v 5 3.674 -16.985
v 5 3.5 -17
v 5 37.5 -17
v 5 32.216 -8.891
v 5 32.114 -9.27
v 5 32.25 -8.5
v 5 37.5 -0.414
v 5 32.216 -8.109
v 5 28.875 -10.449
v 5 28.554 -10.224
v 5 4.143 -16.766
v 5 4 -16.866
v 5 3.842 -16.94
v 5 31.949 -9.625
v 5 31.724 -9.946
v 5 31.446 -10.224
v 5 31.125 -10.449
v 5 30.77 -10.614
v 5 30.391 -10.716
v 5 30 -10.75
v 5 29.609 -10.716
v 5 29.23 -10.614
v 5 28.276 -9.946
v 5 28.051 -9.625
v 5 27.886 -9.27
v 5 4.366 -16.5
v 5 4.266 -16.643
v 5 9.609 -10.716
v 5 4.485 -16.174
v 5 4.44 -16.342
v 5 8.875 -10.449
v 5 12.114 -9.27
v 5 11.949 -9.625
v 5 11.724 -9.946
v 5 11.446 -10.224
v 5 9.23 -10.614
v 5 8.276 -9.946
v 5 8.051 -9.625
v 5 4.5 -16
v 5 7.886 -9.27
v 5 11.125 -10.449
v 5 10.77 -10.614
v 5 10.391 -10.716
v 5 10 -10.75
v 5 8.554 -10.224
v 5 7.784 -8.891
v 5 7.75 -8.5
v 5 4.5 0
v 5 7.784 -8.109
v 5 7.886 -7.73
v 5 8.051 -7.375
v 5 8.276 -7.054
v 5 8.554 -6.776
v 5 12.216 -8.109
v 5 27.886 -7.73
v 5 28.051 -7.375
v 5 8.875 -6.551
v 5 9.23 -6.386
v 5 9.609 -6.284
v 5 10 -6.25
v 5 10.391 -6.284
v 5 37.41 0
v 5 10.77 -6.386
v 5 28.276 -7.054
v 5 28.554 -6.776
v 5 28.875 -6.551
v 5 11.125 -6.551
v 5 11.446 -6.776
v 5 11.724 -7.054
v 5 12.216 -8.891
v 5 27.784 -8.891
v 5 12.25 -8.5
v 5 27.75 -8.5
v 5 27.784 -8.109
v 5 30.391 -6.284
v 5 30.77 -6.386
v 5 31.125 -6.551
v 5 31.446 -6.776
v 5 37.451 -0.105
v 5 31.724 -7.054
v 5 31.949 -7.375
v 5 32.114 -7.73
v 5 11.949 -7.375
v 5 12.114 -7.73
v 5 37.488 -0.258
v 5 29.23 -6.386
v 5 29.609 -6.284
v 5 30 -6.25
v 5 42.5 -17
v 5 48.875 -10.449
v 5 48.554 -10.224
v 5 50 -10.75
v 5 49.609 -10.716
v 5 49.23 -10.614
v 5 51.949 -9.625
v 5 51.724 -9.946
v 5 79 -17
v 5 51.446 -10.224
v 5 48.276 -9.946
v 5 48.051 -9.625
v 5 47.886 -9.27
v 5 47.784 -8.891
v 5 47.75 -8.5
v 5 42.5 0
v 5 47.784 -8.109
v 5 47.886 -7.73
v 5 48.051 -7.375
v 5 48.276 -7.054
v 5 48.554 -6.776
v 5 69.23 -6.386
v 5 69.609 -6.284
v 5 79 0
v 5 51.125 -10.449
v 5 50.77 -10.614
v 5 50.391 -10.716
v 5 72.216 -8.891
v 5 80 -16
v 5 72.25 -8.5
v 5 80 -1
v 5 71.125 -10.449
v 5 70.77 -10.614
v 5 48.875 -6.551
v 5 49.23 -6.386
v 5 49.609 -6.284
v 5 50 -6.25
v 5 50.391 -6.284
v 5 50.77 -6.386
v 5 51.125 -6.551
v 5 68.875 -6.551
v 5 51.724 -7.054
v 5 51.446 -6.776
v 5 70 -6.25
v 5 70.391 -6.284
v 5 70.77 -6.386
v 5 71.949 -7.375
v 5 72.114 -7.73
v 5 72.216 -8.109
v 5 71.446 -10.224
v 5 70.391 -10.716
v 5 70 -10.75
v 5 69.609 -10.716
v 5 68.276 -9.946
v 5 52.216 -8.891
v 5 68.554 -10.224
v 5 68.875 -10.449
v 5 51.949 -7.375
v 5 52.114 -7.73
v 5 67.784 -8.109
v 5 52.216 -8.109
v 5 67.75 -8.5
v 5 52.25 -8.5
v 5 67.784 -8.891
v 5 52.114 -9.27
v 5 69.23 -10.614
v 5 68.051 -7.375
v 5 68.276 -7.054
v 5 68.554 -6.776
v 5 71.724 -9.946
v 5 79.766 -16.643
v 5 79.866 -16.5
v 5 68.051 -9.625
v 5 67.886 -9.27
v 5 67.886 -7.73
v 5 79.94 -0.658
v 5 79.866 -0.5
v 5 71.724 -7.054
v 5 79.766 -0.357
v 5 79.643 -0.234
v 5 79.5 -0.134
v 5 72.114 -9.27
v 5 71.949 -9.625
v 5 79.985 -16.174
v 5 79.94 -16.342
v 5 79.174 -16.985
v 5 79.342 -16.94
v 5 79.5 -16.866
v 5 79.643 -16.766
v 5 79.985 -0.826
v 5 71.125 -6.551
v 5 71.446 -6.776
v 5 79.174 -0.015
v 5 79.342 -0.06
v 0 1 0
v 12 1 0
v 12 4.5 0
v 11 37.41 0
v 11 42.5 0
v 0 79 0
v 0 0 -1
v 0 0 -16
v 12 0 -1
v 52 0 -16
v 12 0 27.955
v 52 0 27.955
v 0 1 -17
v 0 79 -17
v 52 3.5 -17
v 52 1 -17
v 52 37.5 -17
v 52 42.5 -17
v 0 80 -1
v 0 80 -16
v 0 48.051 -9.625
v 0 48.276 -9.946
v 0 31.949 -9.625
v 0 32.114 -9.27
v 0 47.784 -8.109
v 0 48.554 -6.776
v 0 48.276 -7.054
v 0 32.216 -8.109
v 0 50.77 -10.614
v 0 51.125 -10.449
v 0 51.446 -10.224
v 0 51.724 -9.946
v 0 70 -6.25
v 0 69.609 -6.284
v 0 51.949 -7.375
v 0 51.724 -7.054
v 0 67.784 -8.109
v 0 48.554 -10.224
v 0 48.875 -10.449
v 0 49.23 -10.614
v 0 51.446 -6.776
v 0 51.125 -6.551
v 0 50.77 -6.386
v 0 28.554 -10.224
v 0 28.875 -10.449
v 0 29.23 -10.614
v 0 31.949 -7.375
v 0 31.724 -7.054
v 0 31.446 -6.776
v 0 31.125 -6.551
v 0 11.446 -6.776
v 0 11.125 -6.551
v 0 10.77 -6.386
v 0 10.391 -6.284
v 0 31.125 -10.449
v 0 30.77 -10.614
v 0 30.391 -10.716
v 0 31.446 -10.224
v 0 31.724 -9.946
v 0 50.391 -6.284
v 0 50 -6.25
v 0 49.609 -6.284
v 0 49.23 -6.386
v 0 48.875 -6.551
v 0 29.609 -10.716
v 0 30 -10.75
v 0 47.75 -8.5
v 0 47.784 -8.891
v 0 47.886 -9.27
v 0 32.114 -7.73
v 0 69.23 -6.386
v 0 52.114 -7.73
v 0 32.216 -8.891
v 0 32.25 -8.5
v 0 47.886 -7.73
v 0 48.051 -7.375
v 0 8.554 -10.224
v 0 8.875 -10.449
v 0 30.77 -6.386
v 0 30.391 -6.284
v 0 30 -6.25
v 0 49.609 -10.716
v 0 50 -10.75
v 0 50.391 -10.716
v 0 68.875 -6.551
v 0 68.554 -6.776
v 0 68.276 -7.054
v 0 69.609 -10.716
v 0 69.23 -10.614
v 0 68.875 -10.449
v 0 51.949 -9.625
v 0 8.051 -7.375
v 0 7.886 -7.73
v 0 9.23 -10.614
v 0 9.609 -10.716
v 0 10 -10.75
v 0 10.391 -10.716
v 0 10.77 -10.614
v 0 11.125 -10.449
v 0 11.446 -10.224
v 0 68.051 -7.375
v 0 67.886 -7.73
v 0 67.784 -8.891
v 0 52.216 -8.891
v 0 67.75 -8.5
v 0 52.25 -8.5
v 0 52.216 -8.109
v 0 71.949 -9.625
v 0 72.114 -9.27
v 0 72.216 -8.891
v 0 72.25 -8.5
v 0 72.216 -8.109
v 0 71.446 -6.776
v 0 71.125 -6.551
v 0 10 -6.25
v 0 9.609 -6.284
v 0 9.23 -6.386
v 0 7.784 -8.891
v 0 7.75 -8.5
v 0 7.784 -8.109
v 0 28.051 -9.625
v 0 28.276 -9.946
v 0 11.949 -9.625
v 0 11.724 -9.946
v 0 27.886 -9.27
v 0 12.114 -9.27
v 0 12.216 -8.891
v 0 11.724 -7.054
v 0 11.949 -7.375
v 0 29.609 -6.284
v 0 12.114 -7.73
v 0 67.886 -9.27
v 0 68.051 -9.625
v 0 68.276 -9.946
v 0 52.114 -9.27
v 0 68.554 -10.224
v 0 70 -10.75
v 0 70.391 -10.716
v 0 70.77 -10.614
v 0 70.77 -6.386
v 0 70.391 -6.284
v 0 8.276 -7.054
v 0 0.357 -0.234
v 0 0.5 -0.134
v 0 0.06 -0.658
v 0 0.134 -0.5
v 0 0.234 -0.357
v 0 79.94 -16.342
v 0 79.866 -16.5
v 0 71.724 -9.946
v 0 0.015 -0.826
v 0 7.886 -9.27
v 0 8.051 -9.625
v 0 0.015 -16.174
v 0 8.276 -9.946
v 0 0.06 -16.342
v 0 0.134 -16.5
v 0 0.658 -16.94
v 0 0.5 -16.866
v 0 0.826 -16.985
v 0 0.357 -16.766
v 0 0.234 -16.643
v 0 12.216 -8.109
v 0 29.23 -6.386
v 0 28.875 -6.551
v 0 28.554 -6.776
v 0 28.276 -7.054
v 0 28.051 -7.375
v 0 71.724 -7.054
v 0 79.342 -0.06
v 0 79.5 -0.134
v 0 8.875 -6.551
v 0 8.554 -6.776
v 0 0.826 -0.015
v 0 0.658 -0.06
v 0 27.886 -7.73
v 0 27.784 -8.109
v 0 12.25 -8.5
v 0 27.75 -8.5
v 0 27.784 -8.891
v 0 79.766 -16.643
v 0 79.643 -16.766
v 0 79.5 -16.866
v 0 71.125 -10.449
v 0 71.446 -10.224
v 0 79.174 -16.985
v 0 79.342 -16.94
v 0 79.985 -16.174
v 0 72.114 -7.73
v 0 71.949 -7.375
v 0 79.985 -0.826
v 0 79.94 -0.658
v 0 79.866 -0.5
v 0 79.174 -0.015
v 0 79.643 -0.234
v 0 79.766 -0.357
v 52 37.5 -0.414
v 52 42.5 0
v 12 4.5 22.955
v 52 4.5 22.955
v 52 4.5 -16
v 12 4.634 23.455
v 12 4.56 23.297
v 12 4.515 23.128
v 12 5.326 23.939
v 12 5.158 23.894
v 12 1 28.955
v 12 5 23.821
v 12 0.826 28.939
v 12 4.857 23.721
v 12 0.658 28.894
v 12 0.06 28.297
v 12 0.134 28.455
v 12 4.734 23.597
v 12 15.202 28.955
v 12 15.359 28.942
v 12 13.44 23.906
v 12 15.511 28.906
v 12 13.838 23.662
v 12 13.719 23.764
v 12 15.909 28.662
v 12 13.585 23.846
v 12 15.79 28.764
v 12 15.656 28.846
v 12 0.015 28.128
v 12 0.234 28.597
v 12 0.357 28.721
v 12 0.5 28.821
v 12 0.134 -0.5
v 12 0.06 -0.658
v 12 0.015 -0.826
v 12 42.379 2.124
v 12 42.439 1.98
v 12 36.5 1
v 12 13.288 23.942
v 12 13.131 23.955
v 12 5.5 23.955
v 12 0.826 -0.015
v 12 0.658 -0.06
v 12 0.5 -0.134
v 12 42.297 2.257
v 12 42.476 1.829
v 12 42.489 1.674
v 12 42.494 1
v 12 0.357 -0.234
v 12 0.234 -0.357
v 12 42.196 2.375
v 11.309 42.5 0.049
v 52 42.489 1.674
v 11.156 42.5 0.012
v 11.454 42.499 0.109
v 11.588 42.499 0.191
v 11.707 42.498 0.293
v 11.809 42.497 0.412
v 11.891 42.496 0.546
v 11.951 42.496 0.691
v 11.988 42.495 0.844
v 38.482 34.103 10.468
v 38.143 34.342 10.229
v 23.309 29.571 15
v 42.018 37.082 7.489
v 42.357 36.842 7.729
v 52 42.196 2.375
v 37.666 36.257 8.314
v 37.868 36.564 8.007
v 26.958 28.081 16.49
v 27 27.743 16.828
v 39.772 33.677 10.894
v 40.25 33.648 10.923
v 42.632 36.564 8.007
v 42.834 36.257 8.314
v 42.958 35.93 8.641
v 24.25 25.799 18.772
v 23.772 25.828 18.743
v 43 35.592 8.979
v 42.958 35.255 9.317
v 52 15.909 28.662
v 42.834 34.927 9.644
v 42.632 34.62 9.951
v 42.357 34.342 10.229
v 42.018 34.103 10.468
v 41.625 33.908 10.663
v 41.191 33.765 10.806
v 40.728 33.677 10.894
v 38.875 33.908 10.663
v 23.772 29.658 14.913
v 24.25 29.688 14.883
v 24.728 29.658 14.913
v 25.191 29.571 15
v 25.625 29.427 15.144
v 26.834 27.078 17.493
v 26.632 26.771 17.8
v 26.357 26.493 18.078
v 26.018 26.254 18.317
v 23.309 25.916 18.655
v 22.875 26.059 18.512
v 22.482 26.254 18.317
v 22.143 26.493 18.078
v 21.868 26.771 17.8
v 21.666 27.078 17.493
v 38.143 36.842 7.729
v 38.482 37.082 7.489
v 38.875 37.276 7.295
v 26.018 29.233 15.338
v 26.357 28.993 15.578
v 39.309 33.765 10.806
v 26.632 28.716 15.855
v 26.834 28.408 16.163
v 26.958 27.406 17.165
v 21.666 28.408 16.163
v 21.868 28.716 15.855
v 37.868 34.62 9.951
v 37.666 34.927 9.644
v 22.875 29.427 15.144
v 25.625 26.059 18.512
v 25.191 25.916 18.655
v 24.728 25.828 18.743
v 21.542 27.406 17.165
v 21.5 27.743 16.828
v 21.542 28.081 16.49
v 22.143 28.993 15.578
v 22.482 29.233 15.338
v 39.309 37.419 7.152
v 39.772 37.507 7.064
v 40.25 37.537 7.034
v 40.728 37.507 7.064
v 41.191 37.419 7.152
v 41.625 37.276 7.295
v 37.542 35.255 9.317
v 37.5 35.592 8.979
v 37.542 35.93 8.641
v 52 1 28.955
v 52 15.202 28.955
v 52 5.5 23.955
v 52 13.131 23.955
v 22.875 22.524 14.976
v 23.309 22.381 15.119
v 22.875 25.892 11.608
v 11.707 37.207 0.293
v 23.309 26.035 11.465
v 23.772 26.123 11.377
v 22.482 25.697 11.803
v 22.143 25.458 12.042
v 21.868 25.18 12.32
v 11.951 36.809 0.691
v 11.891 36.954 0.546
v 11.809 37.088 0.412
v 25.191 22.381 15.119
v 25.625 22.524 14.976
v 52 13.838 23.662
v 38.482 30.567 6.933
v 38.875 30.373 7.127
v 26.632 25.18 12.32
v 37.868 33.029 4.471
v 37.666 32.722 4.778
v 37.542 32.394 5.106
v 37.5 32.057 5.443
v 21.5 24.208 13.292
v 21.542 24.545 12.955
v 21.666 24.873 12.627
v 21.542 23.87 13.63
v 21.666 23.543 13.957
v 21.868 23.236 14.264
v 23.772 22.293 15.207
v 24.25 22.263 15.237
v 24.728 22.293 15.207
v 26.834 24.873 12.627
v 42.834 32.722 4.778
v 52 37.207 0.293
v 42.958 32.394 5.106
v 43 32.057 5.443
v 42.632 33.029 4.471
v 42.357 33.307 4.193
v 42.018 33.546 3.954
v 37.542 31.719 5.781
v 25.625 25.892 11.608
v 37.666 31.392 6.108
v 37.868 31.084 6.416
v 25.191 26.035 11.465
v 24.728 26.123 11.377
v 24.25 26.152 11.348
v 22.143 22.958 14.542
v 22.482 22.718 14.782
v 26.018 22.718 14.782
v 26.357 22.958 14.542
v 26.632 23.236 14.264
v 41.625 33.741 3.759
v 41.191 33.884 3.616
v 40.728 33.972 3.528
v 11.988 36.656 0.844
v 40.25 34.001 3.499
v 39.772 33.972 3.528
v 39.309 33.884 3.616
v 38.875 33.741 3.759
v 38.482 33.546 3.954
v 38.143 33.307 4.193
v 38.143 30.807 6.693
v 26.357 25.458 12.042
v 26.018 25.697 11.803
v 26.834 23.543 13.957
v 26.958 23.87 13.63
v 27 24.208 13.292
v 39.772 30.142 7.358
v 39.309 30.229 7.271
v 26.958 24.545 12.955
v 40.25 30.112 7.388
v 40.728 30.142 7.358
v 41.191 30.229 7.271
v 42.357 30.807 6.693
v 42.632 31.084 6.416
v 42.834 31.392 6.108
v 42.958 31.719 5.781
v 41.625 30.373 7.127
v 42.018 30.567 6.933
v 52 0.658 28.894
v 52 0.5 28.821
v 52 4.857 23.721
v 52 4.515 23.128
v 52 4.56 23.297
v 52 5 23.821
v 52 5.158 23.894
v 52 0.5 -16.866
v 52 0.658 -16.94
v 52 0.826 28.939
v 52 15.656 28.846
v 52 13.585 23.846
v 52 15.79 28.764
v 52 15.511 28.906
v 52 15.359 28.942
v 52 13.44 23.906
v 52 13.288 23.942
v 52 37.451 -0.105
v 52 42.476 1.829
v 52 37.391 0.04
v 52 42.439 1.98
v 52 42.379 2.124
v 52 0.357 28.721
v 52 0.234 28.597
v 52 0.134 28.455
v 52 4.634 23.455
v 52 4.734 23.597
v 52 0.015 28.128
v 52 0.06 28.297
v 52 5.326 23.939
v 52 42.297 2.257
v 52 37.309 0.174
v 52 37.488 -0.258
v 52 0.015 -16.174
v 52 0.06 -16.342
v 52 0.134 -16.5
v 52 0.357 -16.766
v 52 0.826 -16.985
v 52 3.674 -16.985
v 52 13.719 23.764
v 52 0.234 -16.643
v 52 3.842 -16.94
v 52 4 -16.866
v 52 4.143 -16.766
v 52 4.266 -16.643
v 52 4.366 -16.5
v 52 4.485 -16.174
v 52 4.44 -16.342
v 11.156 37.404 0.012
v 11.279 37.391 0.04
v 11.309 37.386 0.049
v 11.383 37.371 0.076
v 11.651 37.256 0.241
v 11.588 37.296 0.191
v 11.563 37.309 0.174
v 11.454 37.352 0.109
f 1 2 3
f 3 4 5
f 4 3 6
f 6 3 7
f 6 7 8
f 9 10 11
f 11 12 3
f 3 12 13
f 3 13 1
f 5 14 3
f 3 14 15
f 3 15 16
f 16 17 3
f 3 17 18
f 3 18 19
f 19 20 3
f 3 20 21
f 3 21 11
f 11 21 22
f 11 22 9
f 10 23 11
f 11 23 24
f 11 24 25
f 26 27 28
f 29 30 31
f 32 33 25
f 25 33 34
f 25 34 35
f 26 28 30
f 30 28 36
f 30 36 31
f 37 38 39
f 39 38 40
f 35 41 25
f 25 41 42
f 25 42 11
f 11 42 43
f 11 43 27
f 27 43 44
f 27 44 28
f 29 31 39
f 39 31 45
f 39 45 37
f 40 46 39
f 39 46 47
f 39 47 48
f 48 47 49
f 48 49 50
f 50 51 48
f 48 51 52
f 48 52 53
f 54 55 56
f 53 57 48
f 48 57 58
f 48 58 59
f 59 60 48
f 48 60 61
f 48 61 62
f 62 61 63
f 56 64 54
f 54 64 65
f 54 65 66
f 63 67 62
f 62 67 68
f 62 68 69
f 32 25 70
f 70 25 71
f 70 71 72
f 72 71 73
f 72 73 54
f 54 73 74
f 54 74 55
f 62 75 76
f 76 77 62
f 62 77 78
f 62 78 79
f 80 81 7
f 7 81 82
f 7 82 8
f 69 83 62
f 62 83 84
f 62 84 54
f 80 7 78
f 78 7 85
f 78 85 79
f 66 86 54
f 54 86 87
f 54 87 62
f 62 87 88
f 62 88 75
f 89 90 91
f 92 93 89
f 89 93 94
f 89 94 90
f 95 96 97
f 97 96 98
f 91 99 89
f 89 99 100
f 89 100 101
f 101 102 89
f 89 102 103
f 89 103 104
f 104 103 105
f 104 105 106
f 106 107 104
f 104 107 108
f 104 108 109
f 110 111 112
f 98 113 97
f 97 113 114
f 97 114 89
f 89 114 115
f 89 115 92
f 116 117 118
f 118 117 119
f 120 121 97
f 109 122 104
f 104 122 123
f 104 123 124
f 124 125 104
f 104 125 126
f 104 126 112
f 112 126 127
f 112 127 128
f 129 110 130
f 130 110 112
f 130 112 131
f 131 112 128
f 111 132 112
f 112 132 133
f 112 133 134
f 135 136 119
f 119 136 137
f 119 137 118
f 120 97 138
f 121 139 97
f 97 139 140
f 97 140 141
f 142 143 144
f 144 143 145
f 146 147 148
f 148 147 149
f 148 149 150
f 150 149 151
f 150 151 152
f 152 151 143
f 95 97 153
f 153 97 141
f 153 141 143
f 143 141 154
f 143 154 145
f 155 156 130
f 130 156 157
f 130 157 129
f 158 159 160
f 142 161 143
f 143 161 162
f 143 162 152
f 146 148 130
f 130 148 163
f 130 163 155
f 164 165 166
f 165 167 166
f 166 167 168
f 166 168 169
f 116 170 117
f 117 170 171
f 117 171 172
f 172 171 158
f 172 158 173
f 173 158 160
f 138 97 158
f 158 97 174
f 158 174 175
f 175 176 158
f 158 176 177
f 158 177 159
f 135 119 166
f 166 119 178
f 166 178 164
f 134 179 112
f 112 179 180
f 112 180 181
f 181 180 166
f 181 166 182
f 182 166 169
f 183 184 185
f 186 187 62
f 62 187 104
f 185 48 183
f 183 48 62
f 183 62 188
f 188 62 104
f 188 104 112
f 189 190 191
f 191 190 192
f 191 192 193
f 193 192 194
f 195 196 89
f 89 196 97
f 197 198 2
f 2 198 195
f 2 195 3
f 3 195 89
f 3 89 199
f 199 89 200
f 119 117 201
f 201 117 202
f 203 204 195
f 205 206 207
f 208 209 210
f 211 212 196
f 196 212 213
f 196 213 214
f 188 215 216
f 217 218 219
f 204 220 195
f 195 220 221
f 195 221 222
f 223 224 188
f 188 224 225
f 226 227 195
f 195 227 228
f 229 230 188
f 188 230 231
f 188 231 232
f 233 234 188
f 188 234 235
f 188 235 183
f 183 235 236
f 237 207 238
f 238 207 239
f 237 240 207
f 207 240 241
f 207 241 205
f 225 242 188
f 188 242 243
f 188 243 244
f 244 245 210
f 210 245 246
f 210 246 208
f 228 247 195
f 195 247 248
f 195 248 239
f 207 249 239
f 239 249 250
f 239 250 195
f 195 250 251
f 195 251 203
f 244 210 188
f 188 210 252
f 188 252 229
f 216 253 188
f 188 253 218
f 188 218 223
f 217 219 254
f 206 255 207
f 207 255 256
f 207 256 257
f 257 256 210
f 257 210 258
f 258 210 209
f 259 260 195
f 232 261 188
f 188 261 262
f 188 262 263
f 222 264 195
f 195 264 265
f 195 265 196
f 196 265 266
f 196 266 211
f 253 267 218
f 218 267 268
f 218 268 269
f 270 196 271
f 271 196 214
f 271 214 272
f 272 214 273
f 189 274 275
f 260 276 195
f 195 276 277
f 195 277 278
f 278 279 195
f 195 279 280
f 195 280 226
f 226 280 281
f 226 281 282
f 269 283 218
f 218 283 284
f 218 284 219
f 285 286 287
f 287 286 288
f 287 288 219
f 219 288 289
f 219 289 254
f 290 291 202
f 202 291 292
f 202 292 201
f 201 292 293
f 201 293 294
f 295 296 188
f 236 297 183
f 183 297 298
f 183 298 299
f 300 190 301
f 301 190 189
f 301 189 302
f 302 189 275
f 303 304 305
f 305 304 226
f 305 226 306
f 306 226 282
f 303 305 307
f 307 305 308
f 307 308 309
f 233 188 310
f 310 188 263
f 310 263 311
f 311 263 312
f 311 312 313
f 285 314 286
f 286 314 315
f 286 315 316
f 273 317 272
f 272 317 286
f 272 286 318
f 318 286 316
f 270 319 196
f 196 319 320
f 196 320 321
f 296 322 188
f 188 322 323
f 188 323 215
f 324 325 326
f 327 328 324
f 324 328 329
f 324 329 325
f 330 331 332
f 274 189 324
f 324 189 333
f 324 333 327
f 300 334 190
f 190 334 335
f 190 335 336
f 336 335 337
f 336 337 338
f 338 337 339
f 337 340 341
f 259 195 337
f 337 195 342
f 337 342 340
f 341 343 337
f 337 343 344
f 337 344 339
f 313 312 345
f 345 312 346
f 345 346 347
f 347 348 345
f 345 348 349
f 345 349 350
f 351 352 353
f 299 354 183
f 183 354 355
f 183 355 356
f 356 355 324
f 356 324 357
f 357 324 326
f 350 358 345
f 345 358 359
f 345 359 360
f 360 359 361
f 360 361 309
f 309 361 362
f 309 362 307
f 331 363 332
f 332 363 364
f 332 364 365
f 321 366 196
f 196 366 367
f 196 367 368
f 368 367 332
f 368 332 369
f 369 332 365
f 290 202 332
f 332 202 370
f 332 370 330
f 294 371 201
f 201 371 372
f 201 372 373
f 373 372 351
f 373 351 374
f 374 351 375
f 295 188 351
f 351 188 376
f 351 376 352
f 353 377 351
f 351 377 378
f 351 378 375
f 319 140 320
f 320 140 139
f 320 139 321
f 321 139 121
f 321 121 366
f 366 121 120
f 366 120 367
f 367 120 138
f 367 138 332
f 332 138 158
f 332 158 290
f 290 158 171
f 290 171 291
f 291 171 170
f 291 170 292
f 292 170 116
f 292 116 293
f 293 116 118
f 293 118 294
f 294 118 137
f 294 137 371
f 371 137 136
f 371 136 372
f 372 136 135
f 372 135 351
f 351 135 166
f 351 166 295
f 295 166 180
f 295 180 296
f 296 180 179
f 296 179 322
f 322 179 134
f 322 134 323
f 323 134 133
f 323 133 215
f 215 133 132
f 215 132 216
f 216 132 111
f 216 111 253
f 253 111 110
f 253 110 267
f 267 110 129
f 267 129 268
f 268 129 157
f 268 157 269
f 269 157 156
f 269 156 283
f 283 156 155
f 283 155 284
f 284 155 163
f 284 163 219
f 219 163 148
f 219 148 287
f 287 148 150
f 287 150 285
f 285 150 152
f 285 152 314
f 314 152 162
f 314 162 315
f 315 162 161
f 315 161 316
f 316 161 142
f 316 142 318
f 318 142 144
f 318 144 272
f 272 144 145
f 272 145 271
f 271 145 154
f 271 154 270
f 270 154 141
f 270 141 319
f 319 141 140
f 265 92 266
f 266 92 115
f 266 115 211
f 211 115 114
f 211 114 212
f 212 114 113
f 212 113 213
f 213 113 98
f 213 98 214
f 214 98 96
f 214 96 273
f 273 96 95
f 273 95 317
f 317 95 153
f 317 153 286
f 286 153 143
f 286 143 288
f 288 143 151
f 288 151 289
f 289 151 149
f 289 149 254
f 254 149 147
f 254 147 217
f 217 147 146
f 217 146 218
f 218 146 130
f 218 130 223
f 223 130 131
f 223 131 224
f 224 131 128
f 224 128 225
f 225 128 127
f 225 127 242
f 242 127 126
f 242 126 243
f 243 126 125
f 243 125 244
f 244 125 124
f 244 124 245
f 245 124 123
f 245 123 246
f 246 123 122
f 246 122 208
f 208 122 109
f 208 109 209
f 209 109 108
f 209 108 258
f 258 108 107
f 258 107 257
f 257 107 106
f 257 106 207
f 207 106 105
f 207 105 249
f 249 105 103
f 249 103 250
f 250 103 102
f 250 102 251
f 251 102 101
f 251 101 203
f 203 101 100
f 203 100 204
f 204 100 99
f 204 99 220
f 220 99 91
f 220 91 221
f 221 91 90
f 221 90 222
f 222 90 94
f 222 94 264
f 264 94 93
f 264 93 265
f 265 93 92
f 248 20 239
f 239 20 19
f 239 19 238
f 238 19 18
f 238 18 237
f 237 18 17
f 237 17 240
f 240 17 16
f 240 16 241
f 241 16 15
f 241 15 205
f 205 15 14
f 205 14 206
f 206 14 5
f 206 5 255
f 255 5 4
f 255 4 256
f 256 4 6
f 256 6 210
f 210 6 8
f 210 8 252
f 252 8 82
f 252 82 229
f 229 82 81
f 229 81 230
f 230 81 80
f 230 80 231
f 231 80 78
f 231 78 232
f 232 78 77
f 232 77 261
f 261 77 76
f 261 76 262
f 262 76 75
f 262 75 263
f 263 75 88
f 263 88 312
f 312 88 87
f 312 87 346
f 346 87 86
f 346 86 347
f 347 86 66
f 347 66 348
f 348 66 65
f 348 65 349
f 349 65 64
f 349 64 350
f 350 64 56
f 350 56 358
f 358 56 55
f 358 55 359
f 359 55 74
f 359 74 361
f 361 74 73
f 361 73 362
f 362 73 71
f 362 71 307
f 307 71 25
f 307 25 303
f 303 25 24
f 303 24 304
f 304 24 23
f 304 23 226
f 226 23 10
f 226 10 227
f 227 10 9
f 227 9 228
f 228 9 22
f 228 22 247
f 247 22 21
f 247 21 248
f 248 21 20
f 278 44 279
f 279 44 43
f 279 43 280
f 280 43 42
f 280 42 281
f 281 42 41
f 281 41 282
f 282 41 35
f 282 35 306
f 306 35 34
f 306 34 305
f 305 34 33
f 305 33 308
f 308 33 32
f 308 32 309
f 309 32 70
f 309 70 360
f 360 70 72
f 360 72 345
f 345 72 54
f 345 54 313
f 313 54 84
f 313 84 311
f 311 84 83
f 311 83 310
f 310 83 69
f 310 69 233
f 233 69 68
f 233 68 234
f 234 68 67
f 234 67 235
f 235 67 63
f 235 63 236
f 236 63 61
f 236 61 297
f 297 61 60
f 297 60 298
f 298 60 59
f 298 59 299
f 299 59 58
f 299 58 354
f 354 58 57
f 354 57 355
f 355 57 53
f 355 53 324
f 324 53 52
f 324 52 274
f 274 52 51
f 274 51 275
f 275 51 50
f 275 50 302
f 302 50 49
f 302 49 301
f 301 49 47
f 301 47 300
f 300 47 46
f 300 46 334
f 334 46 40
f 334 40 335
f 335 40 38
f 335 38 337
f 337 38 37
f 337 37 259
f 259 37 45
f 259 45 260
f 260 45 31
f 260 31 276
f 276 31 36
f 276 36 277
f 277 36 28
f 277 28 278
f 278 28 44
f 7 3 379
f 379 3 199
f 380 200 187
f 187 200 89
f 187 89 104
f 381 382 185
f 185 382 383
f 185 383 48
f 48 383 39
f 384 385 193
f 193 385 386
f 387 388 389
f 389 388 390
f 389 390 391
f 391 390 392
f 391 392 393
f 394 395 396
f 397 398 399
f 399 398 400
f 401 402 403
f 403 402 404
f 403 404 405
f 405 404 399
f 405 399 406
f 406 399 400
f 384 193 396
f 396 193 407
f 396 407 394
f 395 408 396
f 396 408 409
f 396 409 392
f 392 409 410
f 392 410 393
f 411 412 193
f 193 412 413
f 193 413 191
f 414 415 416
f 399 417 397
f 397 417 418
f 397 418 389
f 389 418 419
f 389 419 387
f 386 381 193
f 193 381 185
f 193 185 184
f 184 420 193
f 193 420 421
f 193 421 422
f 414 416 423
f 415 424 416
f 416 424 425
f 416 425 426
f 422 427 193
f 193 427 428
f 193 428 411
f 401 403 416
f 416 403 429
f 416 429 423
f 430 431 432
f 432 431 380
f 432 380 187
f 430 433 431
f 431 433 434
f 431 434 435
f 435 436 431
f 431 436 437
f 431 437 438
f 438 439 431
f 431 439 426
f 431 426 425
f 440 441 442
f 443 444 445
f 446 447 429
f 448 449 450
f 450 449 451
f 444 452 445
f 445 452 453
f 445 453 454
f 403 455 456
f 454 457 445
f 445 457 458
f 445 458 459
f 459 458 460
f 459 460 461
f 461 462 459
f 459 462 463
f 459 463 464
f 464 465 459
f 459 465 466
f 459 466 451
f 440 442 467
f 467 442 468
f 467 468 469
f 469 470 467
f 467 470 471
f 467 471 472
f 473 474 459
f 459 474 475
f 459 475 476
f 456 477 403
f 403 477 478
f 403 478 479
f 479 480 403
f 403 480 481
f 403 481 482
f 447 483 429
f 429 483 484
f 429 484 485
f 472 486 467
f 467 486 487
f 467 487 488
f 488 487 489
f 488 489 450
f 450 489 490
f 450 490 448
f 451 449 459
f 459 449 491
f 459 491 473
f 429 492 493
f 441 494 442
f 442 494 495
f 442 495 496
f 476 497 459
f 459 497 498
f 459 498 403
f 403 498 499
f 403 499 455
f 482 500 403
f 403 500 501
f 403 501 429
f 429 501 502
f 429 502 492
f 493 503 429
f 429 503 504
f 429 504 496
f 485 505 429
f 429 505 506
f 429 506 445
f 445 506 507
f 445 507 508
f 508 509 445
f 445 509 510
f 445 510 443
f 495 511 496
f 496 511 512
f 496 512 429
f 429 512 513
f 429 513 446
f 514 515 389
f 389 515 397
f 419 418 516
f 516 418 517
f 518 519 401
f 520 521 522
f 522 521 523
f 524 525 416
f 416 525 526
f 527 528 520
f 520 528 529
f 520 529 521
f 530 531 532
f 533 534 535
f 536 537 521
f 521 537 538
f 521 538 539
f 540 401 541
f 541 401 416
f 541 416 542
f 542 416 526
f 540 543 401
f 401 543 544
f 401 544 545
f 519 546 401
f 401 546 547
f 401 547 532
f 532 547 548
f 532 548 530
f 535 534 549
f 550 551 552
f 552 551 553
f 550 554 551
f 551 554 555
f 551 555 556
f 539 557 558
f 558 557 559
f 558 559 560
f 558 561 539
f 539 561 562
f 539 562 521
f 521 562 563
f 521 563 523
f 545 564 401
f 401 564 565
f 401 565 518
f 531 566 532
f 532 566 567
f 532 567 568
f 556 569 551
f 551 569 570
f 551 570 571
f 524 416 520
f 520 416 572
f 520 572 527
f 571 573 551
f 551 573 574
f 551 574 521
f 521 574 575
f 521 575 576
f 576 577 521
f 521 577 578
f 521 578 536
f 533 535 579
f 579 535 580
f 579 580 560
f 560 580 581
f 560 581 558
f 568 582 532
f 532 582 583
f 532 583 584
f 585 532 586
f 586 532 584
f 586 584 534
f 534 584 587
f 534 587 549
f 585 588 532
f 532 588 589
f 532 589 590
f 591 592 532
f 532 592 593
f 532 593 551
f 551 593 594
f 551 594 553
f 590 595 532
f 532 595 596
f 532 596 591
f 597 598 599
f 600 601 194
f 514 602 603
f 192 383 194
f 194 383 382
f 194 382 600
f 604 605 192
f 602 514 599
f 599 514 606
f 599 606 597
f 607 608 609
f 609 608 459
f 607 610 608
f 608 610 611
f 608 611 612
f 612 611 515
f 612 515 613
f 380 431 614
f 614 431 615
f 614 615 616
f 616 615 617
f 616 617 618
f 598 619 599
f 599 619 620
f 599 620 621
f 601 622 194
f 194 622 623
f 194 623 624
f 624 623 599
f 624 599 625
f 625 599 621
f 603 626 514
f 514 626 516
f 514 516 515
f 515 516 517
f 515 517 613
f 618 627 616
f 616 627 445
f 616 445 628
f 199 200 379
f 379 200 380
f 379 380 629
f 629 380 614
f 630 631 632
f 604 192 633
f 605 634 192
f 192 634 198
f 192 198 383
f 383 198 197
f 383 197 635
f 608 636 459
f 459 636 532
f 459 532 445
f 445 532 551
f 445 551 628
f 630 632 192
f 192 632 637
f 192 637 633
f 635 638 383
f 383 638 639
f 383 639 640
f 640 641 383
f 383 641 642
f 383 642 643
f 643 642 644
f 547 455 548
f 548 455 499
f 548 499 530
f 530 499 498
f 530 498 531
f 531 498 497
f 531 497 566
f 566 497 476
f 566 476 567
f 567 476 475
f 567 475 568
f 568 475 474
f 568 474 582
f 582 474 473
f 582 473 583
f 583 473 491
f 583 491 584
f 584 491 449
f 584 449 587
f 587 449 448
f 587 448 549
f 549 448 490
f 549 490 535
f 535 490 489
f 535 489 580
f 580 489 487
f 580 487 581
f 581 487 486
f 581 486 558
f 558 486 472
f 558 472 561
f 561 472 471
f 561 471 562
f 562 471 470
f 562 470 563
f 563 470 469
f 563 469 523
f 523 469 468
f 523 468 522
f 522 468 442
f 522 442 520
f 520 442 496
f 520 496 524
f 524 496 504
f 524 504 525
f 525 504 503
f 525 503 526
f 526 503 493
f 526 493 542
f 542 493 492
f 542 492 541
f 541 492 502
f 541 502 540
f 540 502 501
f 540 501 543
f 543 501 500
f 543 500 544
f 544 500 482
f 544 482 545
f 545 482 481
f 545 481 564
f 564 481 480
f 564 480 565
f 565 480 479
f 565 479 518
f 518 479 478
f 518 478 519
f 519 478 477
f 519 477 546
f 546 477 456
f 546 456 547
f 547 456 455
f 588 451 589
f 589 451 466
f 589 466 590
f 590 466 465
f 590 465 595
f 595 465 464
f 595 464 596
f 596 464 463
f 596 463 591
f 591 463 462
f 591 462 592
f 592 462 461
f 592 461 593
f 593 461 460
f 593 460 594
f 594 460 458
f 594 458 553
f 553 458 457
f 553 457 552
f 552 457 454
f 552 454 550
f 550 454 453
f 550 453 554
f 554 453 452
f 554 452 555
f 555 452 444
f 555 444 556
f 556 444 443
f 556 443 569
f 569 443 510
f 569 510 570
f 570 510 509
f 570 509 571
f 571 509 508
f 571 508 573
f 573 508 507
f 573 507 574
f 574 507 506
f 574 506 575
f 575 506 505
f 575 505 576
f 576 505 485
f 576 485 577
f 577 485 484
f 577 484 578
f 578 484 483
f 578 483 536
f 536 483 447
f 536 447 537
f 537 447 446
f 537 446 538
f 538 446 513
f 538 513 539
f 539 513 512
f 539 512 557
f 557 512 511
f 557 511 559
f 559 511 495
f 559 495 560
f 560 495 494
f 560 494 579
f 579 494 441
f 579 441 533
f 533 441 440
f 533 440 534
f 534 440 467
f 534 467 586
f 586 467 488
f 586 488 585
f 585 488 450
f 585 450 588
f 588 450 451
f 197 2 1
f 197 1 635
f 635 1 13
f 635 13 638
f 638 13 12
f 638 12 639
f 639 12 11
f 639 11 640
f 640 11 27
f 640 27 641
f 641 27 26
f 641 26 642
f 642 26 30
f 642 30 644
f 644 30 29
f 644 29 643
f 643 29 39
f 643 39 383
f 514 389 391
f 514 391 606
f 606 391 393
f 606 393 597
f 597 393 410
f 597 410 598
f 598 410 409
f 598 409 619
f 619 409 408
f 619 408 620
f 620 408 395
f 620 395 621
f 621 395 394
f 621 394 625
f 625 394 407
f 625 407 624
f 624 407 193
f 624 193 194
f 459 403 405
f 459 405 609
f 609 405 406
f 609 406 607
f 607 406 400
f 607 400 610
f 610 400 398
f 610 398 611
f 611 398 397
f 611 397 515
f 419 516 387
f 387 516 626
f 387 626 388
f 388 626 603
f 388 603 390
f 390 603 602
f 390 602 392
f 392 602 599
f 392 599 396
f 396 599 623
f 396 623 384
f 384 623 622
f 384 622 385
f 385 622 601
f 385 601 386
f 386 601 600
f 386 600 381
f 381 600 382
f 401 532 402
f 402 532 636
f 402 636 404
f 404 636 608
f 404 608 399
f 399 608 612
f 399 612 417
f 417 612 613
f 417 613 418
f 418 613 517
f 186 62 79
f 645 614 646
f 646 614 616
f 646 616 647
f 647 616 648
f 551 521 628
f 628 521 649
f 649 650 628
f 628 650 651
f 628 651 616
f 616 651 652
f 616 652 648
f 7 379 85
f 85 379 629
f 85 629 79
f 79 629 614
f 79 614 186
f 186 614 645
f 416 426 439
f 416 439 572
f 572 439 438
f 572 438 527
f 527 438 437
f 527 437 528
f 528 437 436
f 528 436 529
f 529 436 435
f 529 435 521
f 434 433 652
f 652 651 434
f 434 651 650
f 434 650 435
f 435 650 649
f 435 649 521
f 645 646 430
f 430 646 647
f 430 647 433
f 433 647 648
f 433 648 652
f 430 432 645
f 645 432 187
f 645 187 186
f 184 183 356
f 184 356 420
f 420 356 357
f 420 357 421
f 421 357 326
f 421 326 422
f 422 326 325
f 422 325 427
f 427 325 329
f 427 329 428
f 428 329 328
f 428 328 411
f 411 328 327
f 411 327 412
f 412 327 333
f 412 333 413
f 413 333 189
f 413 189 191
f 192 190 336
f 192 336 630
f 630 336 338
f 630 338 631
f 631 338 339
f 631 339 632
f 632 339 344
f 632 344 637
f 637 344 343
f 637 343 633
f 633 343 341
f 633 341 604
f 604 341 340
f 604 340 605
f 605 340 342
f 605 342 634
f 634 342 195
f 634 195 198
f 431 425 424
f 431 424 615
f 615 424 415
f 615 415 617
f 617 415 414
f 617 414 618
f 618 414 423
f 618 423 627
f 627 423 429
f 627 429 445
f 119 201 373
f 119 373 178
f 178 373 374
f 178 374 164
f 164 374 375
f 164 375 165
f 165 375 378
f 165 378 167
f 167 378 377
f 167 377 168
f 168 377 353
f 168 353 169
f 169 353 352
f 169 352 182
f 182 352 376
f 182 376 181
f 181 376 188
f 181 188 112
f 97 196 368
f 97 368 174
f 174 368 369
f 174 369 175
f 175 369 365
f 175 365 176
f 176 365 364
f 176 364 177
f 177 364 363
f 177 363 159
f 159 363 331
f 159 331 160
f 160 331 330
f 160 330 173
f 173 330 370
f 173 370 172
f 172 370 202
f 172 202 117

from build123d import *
from build123d.topology import SkipClean

# Parameters (mm, degrees)
SKETCH1_W           = 17
SKETCH1_H           = 80
BOSS_EXTRUDE1_DEPTH = 5
SKETCH2_R           = 2.25
CUT_EXTRUDE1_DEPTH  = 82.939001702
SKETCH3_W           = 17
SKETCH3_H           = 5
SKETCH3_H_2         = 4.5
BOSS_EXTRUDE2_DEPTH = 7
BOSS_EXTRUDE3_DEPTH = 40
CUT_EXTRUDE2_REACH  = 89.054
SKETCH6_R           = 2.75
FILLET1_START       = 5
FILLET1_DEPTH       = 48
FILLET1_START_2     = -1
FILLET1_2_DEPTH     = 13
FILLET1_START_3     = 10.9999999
FILLET1_3_DEPTH     = 4.7752001
FILLET1_START_4     = 12
FILLET1_4_DEPTH     = 40
FILLET1_5_DEPTH     = 12
FILLET1_6_DEPTH     = 43.5
FILLET1_7_DEPTH     = 16.909322952


with BuildPart() as part:
    # Sketch1 → Boss-Extrude1 (new body)
    with BuildSketch(Plane(origin=(0, 0, 0), x_dir=(0, 0, -1), z_dir=(1, 0, 0))):
        with Locations((8.5, 40)):
            Rectangle(SKETCH1_W, SKETCH1_H)
    extrude(amount=BOSS_EXTRUDE1_DEPTH)

    # Sketch2 → Cut-Extrude1 (cut, through all)
    with BuildSketch(Plane(origin=(5, 0, 0), x_dir=(0, 0, -1), z_dir=(1, 0, 0))):
        with Locations((8.5, 10)):
            Circle(SKETCH2_R)
        with Locations((8.5, 30)):
            Circle(SKETCH2_R)
        with Locations((8.5, 50)):
            Circle(SKETCH2_R)
        with Locations((8.5, 70)):
            Circle(SKETCH2_R)
    extrude(amount=-CUT_EXTRUDE1_DEPTH, mode=Mode.SUBTRACT)

    # Sketch3 → Boss-Extrude2 (add)
    with BuildSketch(Plane(origin=(5, 0, 0), x_dir=(0, 0, -1), z_dir=(1, 0, 0))):
        with Locations((8.5, 40)):
            Rectangle(SKETCH3_W, SKETCH3_H)
        with Locations((8.5, 2.25)):
            Rectangle(SKETCH3_W, SKETCH3_H_2)
    extrude(amount=BOSS_EXTRUDE2_DEPTH)

    # Sketch5 → Boss-Extrude3 (add)
    with BuildSketch(Plane(origin=(12, 0, 0), x_dir=(0, 0, -1), z_dir=(1, 0, 0))):
        Polygon((0, 37.5), (-23.954638078, 13.545361922), (-23.954638078, 4.5), (17, 4.5), (17, 0), (-28.954638078, 0), (-28.954638078, 5), (-28.954638078, 15.616429734), (-2.084580393, 42.486487419), (0, 42.5), (17, 42.5), (17, 37.5), align=None)
    extrude(amount=BOSS_EXTRUDE3_DEPTH)

    # Sketch6 → Cut-Extrude2 (cut, up to next)
    with BuildSketch(Plane(origin=(0, 22.285533906, 22.285533906), x_dir=(1, 0, 0), z_dir=(0, 0.7071067811865482, 0.7071067811865468)), mode=Mode.PRIVATE) as cut_extrude2_sk1:
        with Locations(Location((40.25, 18.818462431, 0), (0, 0, 270))):
            Circle(SKETCH6_R)
    cut_extrude2_tool1 = extrude(cut_extrude2_sk1.sketch, amount=-CUT_EXTRUDE2_REACH, mode=Mode.PRIVATE) & part.part
    # Sketch6 → Cut-Extrude2 (cut, up to next)
    with BuildSketch(Plane(origin=(0, 22.285533906, 22.285533906), x_dir=(1, 0, 0), z_dir=(0, 0.7071067811865482, 0.7071067811865468)), mode=Mode.PRIVATE) as cut_extrude2_sk2:
        with Locations(Location((24.25, 7.718462431, 0), (0, 0, 270))):
            Circle(SKETCH6_R)
    cut_extrude2_tool2 = extrude(cut_extrude2_sk2.sketch, amount=-CUT_EXTRUDE2_REACH, mode=Mode.PRIVATE) & part.part
    add(cut_extrude2_tool1.solids().sort_by_distance((40.25, 35.592196, 8.978872))[0], mode=Mode.SUBTRACT)
    add(cut_extrude2_tool2.solids().sort_by_distance((24.25, 27.743311, 16.827757))[0], mode=Mode.SUBTRACT)

    # Fillet1: read off the stored shape, not the designer's step
    # Fillet1 outline → Fillet1 (cut)
    with BuildSketch(Plane.YZ.offset(FILLET1_START)):
        with BuildLine():
            Line((4.5, -17), (4.5, -16))
            ThreePointArc((4.5, -16), (4.207106781, -16.707106781), (3.5, -17))
            Line((3.5, -17), (4.5, -17))
        make_face()
        with BuildLine():
            Line((0, -17), (1, -17))
            ThreePointArc((1, -17), (0.292893219, -16.707106781), (0, -16))
            Line((0, -16), (0, -17))
        make_face()
        with BuildLine():
            Line((0, 28.954638078), (0, 27.954638078))
            ThreePointArc((0, 27.954638078), (0.292893219, 28.661744859), (1, 28.954638078))
            Line((1, 28.954638078), (0, 28.954638078))
        make_face()
        with BuildLine():
            ThreePointArc((42.19627557, 2.374792242), (42.411803181, 2.053361203), (42.48914778, 1.674167483))
            Line((42.48914778, 1.674167483), (42.486487419, 2.084580393))
            Line((42.486487419, 2.084580393), (42.19627557, 2.374792242))
        make_face()
        with BuildLine():
            Line((15.616429734, 28.954638078), (15.202216171, 28.954638078))
            ThreePointArc((15.202216171, 28.954638078), (15.584899604, 28.878517611), (15.909322952, 28.661744859))
            Line((15.909322952, 28.661744859), (15.616429734, 28.954638078))
        make_face()
    extrude(amount=FILLET1_DEPTH, mode=Mode.SUBTRACT)

    # Fillet1 2 outline → Fillet1 2 (cut)
    with BuildSketch(Plane.YZ.offset(FILLET1_START_2)):
        with BuildLine():
            Line((0, -17), (1, -17))
            ThreePointArc((1, -17), (0.292893219, -16.707106781), (0, -16))
            Line((0, -16), (0, -17))
        make_face()
        with BuildLine():
            ThreePointArc((0, -1), (0.292893219, -0.292893219), (1, 0))
            Line((1, 0), (0, 0))
            Line((0, 0), (0, -1))
        make_face()
        with BuildLine():
            ThreePointArc((80, -16), (79.707106781, -16.707106781), (79, -17))
            Line((79, -17), (80, -17))
            Line((80, -17), (80, -16))
        make_face()
        with BuildLine():
            Line((80, 0), (79, 0))
            ThreePointArc((79, 0), (79.707106781, -0.292893219), (80, -1))
            Line((80, -1), (80, 0))
        make_face()
    extrude(amount=FILLET1_2_DEPTH, mode=Mode.SUBTRACT)

    # Fillet1 3 outline → Fillet1 3 (add)
    with SkipClean():  # the faces are left unmerged after this step: merging them gives an invalid solid
        with BuildSketch(Plane.YZ.offset(FILLET1_START_3)):
            with BuildLine():
                Line((4.5, 0), (4.5, 23.954638078))
                Line((4.5, 23.954638078), (13.545361922, 23.954638078))
                Line((13.545361922, 23.954638078), (37.207106781, 0.292893219))
                ThreePointArc((37.207106781, 0.292893219), (37.423879533, -0.03153013), (37.5, -0.414213562))
                Line((37.5, -0.414213562), (37.5, 0))
                Line((37.5, 0), (42.5, 0))
                Line((42.5, 0), (42.48914778, 1.674167483))
                ThreePointArc((42.48914778, 1.674167483), (42.411803181, 2.053361203), (42.19627557, 2.374792242))
                Line((42.19627557, 2.374792242), (15.909322952, 28.661744859))
                ThreePointArc((15.909322952, 28.661744859), (15.584899604, 28.878517611), (15.202216171, 28.954638078))
                Line((15.202216171, 28.954638078), (1, 28.954638078))
                ThreePointArc((1, 28.954638078), (0.292893219, 28.661744859), (0, 27.954638078))
                Line((0, 27.954638078), (0, 0))
                Line((0, 0), (4.5, 0))
            make_face()
        extrude(amount=FILLET1_3_DEPTH)
    add(part.part.scale(1), mode=Mode.REPLACE)  # the faces are merged on a copy

    # Fillet1 4 outline → Fillet1 4 (add)
    with BuildSketch(Plane.YZ.offset(FILLET1_START_4)):
        with BuildLine():
            Line((37.5, -0.414213562), (37.5, 0))
            Line((37.5, 0), (37.207106781, 0.292893219))
            ThreePointArc((37.207106781, 0.292893219), (37.423879533, -0.03153013), (37.5, -0.414213562))
        make_face()
        with BuildLine():
            Line((4.5, 23.954638078), (4.5, 22.954638078))
            ThreePointArc((4.5, 22.954638078), (4.792893219, 23.661744859), (5.5, 23.954638078))
            Line((5.5, 23.954638078), (4.5, 23.954638078))
        make_face()
        with BuildLine():
            ThreePointArc((13.131148359, 23.954638078), (13.513831792, 23.878517611), (13.838255141, 23.661744859))
            Line((13.838255141, 23.661744859), (13.545361922, 23.954638078))
            Line((13.545361922, 23.954638078), (13.131148359, 23.954638078))
        make_face()
    extrude(amount=FILLET1_4_DEPTH)

    # Fillet1 5 outline → Fillet1 5 (add)
    with BuildSketch(Plane.YZ):
        with BuildLine():
            Line((37.5, 0), (37.410179722, 0))
            ThreePointArc((37.410179722, 0), (37.47728699, -0.202293437), (37.5, -0.414213562))
            Line((37.5, -0.414213562), (37.5, 0))
        make_face()
    extrude(amount=FILLET1_5_DEPTH)

    # Fillet1 6 outline → Fillet1 6 (cut)
    with BuildSketch(Plane(origin=(0, 0, 0), x_dir=(1, 0, 0), z_dir=(0, 1, 0)).offset(FILLET1_START_2)):
        with BuildLine():
            Line((10.9999999, -28.954638078), (12, -28.954638078))
            Line((12, -28.954638078), (12, -1))
            ThreePointArc((12, -1), (11.707106781, -0.292893219), (11, 0))
            Line((11, 0), (10.9999999, -28.954638078))
        make_face()
    extrude(amount=FILLET1_6_DEPTH, mode=Mode.SUBTRACT)

    # Fillet1 7 outline → Fillet1 7 (cut)
    with BuildSketch(Plane(origin=(0, 0, 0), x_dir=(1, 0, 0), z_dir=(0, 1, 0)).offset(FILLET1_START_2)):
        with BuildLine():
            Line((12, 0), (11, 0))
            ThreePointArc((11, 0), (11.707106781, -0.292893219), (12, -1))
            Line((12, -1), (12, 0))
        make_face()
    extrude(amount=FILLET1_7_DEPTH, mode=Mode.SUBTRACT)


solid = part.part
